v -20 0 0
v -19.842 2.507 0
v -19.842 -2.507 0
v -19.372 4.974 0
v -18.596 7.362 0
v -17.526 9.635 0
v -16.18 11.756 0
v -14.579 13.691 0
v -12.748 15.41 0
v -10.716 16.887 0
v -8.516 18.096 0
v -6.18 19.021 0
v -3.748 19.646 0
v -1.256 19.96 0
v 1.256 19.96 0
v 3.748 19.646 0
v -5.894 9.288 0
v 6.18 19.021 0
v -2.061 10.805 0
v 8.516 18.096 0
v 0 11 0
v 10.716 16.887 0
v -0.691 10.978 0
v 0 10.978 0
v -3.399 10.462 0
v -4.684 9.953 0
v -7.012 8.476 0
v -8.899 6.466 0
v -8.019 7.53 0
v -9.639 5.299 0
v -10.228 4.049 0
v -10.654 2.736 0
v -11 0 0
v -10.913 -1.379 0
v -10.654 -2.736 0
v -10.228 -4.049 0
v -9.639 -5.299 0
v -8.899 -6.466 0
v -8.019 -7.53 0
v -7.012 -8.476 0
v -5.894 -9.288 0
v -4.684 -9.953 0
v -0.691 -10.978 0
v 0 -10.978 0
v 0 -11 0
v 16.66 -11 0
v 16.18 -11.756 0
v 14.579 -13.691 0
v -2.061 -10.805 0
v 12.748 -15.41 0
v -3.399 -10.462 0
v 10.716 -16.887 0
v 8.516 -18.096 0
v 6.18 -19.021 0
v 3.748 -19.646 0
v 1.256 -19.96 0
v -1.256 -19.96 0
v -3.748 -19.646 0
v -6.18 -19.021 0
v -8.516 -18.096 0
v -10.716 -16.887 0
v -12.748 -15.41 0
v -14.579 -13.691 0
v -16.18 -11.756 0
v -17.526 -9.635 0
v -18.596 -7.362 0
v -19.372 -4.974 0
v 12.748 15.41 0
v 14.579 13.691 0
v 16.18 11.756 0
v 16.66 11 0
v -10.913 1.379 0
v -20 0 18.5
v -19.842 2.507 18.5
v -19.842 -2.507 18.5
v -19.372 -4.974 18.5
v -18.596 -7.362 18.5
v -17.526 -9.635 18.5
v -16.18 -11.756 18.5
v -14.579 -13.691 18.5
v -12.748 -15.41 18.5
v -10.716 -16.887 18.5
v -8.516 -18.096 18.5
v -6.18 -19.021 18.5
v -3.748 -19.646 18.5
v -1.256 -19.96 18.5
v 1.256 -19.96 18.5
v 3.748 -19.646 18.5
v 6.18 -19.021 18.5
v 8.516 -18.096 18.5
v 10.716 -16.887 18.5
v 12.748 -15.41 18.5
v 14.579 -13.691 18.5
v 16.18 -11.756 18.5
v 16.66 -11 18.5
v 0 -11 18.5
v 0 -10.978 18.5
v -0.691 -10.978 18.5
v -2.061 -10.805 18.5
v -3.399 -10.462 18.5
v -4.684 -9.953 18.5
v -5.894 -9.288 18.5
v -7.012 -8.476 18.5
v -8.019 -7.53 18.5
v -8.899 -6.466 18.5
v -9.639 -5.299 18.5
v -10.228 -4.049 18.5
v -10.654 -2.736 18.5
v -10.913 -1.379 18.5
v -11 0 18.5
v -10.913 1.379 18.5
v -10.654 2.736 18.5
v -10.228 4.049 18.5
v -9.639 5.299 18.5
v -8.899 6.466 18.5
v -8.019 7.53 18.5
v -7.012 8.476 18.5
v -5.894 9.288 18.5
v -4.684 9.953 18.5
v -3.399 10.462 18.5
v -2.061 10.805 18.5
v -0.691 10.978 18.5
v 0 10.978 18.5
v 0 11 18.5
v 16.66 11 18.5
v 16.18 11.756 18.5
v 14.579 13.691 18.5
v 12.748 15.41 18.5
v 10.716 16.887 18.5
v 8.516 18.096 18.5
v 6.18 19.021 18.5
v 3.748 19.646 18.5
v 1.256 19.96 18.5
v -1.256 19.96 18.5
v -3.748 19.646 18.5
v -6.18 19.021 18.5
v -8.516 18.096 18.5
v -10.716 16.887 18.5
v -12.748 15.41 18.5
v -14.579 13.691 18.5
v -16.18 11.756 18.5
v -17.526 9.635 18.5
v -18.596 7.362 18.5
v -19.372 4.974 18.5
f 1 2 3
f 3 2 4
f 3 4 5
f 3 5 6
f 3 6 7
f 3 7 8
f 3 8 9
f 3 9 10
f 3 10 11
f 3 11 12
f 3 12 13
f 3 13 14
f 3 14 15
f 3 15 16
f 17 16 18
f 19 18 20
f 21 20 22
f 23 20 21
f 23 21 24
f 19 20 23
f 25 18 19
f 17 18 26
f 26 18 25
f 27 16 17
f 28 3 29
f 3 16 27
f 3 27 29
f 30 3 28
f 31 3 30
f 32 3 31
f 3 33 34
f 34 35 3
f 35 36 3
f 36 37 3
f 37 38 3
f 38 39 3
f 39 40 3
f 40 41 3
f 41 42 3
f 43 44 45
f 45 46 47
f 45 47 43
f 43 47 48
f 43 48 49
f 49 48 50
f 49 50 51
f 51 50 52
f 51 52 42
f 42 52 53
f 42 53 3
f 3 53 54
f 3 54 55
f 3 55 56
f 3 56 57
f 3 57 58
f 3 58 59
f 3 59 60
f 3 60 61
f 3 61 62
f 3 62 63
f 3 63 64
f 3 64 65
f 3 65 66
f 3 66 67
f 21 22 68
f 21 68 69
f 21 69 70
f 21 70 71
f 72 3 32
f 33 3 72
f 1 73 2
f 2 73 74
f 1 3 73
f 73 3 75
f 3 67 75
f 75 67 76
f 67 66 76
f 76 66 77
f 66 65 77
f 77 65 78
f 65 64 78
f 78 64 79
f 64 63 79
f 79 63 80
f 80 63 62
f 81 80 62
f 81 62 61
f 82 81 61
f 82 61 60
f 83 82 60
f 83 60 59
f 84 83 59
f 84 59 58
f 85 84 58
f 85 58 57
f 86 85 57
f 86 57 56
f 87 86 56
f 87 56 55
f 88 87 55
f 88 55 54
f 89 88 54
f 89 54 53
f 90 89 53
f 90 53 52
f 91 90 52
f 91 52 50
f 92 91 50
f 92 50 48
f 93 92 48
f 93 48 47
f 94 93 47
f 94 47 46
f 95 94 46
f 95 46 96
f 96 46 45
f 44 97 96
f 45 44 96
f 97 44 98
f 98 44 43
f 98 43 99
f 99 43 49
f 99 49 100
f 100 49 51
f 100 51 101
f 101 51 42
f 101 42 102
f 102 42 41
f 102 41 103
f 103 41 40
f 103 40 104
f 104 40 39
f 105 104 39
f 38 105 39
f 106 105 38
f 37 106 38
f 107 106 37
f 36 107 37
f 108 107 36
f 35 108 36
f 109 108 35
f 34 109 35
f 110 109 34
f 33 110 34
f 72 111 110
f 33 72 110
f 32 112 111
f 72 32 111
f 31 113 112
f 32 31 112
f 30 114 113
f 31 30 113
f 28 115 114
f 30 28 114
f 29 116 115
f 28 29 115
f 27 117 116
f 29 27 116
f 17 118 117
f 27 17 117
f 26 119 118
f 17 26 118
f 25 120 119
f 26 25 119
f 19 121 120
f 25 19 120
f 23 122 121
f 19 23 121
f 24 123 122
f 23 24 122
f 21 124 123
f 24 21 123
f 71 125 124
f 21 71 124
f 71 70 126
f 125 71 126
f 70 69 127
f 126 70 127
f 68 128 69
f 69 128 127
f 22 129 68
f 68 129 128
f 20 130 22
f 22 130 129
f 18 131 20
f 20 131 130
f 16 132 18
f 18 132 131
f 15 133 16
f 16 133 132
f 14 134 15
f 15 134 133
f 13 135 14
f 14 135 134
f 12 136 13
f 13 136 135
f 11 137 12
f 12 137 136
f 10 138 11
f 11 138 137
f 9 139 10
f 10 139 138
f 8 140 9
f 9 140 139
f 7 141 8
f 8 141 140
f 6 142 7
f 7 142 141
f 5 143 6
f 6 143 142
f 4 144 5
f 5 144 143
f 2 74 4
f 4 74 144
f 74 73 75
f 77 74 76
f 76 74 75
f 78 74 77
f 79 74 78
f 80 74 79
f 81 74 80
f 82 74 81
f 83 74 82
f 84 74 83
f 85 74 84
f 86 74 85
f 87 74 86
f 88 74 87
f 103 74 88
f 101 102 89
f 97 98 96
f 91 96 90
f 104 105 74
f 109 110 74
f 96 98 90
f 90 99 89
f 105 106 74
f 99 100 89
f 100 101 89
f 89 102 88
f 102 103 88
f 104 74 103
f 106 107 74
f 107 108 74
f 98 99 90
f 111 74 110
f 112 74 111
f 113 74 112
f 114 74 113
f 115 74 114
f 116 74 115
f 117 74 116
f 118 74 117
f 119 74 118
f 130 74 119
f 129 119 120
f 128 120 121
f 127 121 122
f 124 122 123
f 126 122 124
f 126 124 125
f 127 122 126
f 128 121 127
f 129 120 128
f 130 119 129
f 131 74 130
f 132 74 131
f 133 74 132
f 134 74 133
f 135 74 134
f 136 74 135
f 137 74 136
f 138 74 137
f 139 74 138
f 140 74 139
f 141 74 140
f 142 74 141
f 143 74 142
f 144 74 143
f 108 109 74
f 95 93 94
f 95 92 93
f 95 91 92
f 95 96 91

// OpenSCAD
use <MCAD/boxes.scad>

// Spool width = 55m.
// 5 spools = 6 partitions
// partition 3mm
// 6x3 = 18mm

numberOfSpools = 5;
spoolWidth = 55;
partitionWidth = 3; // 3mm acrylic

// Overall size 
// make 1/2 width to allow for one either side
width = (spoolWidth - ((numberOfSpools+1) * partitionWidth)) / 2;
outerRadius = 20; 
innerHoleRadius = 11;

$fn=50;

// -----------------------------------------
// RodSupport
// -----------------------------------------
module Padding() {
mountHoleOffset = outerRadius*(2/3);
    
    difference() {
        union() {
            cylinder(r=outerRadius, h=width,center=false);
        }
        union() {
            // Inner hole for rod.
            #cylinder(r=innerHoleRadius, h=width,center=false);
            
            translate([0,-innerHoleRadius,0]) {
                #cube([outerRadius,innerHoleRadius*2,width]);
            }
            
            // cube so that the padding can be slipped on once rod is inplace.
        }
    }
}


// -----------------------------------------
// -----------------------------------------
module Debug() {
    union() {
        Padding();
    }
}

// Comment out when building, uncomment for debug.
Debug();
